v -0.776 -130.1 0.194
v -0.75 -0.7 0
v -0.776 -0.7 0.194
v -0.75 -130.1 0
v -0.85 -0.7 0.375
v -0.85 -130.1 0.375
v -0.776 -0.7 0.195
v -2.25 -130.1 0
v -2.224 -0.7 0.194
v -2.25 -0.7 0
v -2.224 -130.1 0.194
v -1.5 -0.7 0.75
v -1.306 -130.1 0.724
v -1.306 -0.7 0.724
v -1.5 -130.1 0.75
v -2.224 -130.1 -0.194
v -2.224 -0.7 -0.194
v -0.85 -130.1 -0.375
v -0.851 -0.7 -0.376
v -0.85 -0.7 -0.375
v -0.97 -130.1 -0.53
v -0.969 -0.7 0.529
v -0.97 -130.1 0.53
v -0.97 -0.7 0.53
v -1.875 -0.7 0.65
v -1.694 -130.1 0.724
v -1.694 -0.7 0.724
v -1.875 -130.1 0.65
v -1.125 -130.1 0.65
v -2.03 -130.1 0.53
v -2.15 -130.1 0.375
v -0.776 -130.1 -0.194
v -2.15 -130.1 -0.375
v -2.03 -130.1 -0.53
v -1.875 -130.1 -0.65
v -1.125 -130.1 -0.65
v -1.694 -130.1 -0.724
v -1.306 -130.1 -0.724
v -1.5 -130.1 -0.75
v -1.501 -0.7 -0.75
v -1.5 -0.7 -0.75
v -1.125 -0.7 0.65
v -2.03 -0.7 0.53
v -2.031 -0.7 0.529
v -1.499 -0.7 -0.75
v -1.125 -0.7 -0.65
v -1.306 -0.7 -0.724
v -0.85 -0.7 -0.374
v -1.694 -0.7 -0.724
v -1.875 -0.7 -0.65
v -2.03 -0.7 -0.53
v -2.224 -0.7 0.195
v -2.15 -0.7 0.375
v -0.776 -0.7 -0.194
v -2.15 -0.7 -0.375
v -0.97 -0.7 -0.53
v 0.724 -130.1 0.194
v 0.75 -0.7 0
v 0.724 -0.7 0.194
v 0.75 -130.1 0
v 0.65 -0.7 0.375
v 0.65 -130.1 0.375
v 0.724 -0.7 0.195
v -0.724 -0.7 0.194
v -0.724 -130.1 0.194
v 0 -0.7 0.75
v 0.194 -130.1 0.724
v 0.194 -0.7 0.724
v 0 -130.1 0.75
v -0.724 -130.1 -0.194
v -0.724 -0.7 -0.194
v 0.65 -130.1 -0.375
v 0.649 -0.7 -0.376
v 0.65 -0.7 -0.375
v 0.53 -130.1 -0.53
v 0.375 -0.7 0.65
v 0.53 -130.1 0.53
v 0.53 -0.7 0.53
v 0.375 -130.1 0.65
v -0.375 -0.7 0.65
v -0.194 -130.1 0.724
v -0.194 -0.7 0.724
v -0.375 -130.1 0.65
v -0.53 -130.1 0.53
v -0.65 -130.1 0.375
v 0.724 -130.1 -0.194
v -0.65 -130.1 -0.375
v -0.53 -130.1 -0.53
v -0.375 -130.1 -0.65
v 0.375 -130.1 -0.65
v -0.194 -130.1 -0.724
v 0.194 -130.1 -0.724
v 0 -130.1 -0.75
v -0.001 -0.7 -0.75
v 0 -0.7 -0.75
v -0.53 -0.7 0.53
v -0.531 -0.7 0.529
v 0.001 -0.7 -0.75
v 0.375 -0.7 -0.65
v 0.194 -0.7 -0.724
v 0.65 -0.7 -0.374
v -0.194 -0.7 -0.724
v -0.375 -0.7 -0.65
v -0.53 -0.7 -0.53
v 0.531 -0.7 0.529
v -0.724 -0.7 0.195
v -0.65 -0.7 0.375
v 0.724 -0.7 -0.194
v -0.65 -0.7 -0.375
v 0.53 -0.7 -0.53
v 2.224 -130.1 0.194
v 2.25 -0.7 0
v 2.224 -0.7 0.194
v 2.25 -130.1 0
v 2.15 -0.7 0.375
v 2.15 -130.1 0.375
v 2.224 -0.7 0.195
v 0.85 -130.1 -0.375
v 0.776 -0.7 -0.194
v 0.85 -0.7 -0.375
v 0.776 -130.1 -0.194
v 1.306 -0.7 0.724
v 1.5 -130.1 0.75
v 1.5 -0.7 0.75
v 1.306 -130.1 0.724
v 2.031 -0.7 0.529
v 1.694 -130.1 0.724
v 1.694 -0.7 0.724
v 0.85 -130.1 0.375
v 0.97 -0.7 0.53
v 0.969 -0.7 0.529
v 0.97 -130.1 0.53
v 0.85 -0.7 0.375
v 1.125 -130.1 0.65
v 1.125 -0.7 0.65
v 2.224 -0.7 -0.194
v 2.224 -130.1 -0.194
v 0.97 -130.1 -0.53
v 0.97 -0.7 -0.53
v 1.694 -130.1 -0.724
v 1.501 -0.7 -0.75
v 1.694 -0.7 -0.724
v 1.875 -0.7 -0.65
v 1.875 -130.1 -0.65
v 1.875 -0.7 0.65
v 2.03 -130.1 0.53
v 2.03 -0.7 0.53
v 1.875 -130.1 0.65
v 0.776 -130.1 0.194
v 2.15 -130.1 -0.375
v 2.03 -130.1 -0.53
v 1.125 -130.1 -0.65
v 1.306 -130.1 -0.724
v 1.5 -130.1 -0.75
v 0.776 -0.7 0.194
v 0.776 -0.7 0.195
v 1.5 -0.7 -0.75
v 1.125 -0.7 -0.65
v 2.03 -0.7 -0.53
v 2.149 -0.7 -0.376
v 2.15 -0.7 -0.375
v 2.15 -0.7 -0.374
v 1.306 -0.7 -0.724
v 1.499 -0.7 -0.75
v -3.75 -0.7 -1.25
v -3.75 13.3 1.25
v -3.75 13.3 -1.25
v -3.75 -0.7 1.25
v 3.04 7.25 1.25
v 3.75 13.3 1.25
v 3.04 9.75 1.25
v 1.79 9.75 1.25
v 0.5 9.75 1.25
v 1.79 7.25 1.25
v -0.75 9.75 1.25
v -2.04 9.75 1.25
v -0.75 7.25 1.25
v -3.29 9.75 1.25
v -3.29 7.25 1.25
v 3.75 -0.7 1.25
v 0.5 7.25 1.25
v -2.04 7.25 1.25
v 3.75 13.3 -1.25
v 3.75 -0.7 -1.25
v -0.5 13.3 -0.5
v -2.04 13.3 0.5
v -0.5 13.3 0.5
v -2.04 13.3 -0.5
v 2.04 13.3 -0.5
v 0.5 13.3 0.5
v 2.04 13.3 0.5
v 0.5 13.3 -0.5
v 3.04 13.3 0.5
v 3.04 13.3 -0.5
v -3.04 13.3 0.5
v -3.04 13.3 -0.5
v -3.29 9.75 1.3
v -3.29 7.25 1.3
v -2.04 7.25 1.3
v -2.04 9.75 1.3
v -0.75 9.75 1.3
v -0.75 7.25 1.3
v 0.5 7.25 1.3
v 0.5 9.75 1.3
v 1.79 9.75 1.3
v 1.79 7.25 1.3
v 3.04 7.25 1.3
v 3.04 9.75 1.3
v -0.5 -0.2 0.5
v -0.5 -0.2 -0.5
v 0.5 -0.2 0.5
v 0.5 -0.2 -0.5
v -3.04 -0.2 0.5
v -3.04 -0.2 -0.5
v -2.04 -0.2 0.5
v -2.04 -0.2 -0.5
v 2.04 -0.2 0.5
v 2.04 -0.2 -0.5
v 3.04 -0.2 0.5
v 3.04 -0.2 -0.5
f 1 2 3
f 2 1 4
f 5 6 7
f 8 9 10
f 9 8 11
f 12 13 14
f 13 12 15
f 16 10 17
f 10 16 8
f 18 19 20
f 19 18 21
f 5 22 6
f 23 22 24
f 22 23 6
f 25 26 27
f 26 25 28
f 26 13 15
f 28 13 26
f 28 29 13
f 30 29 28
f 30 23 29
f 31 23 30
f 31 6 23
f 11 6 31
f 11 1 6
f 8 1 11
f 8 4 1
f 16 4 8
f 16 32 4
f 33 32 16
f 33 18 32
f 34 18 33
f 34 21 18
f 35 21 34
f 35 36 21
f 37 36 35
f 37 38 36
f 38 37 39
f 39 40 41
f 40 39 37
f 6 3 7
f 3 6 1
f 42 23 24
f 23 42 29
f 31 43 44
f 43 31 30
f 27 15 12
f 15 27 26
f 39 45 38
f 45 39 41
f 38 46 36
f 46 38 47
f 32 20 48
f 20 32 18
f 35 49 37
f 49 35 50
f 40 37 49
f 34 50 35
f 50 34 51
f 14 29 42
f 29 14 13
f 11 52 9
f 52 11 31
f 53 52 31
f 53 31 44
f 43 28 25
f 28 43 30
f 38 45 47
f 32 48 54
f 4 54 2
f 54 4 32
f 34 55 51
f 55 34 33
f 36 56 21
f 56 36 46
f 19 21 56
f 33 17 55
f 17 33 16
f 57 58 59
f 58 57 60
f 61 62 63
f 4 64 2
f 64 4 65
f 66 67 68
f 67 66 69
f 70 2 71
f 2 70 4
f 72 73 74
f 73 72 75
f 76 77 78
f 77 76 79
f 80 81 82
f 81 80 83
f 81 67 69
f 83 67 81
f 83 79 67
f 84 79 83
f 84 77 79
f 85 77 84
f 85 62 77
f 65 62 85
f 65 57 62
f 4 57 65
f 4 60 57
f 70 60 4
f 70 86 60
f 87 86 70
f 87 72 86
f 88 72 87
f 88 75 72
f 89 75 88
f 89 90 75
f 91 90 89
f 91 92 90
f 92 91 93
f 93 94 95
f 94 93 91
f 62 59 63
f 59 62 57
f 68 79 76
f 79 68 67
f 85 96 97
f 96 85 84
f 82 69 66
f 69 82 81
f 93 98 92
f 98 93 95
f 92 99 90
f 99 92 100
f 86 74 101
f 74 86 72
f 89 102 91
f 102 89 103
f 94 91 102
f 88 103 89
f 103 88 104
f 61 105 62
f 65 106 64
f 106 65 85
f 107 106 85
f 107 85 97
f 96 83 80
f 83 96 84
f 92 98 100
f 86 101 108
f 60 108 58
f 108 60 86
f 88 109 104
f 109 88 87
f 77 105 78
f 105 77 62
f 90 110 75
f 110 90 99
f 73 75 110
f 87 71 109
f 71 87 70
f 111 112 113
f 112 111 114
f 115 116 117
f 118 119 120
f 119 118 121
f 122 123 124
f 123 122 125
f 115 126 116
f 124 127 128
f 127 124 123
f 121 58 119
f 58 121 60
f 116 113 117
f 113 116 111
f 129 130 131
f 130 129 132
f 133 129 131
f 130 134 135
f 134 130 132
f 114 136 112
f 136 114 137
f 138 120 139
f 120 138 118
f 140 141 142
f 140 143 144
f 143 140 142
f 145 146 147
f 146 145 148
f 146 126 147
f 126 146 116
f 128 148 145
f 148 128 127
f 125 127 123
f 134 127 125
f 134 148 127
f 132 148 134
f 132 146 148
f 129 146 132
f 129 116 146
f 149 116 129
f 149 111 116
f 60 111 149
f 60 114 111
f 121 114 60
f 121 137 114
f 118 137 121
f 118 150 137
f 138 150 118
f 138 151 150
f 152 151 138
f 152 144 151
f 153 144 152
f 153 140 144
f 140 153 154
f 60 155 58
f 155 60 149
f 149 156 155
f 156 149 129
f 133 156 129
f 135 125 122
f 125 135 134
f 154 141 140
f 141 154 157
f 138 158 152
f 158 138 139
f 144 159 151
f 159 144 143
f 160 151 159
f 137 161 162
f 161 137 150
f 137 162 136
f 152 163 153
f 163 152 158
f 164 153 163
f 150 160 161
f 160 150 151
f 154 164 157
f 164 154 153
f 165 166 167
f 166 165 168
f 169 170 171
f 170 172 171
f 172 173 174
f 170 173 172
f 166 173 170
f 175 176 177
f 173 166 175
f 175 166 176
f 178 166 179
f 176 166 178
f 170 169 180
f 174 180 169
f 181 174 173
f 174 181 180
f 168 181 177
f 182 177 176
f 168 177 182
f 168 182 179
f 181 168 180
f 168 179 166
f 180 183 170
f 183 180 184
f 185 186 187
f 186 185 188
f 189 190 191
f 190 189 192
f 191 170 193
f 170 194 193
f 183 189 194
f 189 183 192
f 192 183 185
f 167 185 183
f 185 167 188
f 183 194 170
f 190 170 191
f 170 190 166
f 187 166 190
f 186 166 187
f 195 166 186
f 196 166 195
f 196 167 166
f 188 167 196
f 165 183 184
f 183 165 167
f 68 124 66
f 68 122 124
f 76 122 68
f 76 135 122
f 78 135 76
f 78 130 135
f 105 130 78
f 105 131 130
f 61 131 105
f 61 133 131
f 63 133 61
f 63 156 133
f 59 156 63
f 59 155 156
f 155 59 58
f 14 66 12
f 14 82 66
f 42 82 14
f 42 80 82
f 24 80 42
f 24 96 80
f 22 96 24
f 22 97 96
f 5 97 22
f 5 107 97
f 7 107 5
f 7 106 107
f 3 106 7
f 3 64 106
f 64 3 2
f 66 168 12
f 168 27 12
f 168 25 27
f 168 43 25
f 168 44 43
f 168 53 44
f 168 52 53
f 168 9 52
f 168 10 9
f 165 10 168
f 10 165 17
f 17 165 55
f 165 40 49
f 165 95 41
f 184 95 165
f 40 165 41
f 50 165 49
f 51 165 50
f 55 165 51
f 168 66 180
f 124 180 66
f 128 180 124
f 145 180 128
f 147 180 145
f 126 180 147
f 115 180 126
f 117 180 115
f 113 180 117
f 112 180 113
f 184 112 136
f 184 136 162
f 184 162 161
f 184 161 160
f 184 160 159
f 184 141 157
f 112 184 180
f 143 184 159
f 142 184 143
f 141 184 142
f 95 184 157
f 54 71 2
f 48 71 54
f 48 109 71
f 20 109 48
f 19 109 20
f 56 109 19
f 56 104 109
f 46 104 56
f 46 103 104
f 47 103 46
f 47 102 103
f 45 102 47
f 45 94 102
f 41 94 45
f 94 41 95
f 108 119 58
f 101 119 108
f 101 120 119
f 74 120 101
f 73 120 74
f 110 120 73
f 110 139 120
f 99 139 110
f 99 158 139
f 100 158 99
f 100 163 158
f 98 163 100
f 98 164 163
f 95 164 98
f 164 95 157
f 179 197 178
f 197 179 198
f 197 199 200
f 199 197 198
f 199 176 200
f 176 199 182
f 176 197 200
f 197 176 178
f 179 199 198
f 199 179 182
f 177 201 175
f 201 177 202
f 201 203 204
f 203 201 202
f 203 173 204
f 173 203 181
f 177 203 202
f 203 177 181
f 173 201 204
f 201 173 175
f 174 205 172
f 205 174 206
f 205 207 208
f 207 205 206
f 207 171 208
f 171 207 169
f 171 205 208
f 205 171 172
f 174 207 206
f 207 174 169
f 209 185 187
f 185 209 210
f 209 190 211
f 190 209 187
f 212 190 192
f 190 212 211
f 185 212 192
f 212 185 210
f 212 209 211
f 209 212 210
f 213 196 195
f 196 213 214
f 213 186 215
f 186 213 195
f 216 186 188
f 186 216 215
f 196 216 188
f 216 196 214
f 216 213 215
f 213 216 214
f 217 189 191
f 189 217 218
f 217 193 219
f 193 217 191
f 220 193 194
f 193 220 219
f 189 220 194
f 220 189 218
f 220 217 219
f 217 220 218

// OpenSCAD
// file: servo_12g.scad
//servo_12g();

//use<hub_mount.scad>
//use<MCAD/nuts_and_bolts.scad>
$fn = 24;
//x,y,z => l,w,h

tap_r = 0.85;
hole_r = 1.0;

servo_l         = 12;  // was 12
servo_w         = 24;  // was 23
body_h          = 20.80;

servo_h         = 27; //not used in code was 27

wing_w          = 4.5;
wing_h          = 2.33;
wing_place      = 16.3;   
hole_offset     = 2.2;    //not checked
mount_hole_r    = 2/2;
mount_slot      = 1;

servo_ww        = servo_w+wing_w*2; // not used in code but is handy number

hub_h           = 4;
small_hub_r     = 6.15/2;  
horn_r          = 4.66/2;
horn_h          = 3;

wire_l          = 4;
wire_w          = 1.5;
wire_h          = 1;
wire_place      = 4.8;

servo_full_w    = servo_w+wing_w*2;
module servo_12g() {
  
    translate([-servo_l/2, -servo_w/2, -body_h/2-hub_h/2-horn_h/2]) {
    
        color("white") 
        translate([servo_l/2,servo_l/2,body_h+hub_h])
        cylinder(r=horn_r,h=horn_h);
        
        color("deepSkyBlue",.7) //deepSkyBlue
        union() {
            cube([servo_l,servo_w,body_h]);
            translate([servo_l/2,servo_l/2,body_h])
            cylinder(r=servo_l/2,h=hub_h);
            translate([servo_l/2,servo_l/2+6.30,body_h])
            cylinder(r=small_hub_r,h=hub_h);
            
        }
    }
}

module roundedRect(size, radius)
{
x = size[0];
y = size[1];
z = size[2];

translate([x/2+radius/2, y/2+radius/2, 0]){
linear_extrude(height=z)
hull()
{
// place 4 circles in the corners, with the given radius
translate([(-x/2)+(radius/2), (-y/2)+(radius/2), 0])
circle(r=radius);

translate([(x/2)-(radius/2), (-y/2)+(radius/2), 0])
circle(r=radius);

translate([(-x/2)+(radius/2), (y/2)-(radius/2), 0])
circle(r=radius);

translate([(x/2)-(radius/2), (y/2)-(radius/2), 0])
circle(r=radius);
}
}
}
// file: config.scad
//Parameters for servo_lx16a
$fn = 24;
//x,y,z => l,w,h


servo_l         = 45.20; 
servo_w         = 24.70; 
body_h          = 32;

servo_h         = 35;

hub_offset      = 10.10;

rad = 2;


w_between_holes = 20.5;
l_between_top_holes = 20.7;
l_between_bottom_holes = 24.45;
top_hole_l_offset = 6.1;
bottom_hole_l_offset = 2.35;

hole_dia = 1.6;
attach_screw_l = 5;

top_hub_carve_h = 2.6;
bottom_hub_carve_h = 3.4;

top_attach_carve_h = 1.1;
bottom_attach_carve_h = 1.9;

hub_carve_r = 10.8;

hub_r = 10.1;

w_between_ridges = 19.5;

top_horn_h = 3.20;
bottom_horn_h = 3.85;

top_horn_r = 3.15;
bottom_horn_r = 3;



hub_h           = 4;
small_hub_r     = 6.15/2;  
horn_r          = 4.66/2;
horn_h          = 3;

wire_l          = 4;
wire_w          = 1.5;
wire_h          = 1;
wire_place      = 4.8;
// main file
include <config.scad>
use <servo_12g.scad>


//servo_12g();
servo_wire();

wire_l = 130+0.1;
wire_d = 1.5;

module servo_wire(){
    
    difference(){
        
        union(){
            
            color("brown")
            translate([-1.5,0,0])
            rotate([90,0,0])
            cylinder(d=wire_d, h=wire_l);
            
            color("red")
            translate([0,0,0])
            rotate([90,0,0])
            cylinder(d=wire_d, h=wire_l);
            
            color("yellow")
            translate([1.5,0,0])
            rotate([90,0,0])
            cylinder(d=wire_d, h=wire_l);
            
            color("black")
            translate([-7.5/2,-14/20,-2.5/2])
            //rotate([90,0,0])
            cube([7.5, 14, 2.5]);
            
            color("silver")
            translate([-1.5/2-2.54,7.25,-0.2])
            //rotate([90,0,0])
            cube([1.25, 2.5, 1.5]);
            
            color("silver")
            translate([-1.5/2,7.25,-0.2])
            //rotate([90,0,0])
            cube([1.25, 2.5, 1.5]);
 
            color("silver") 
            translate([-1.5/2+2.54,7.25,-0.2])
            //rotate([90,0,0])
            cube([1.25, 2.5, 1.5]);
            
        }
        
        translate([-1/2,-0.2,-1/2])
        //rotate([90,0,0])
        #cube([1, 14, 1]);
        
        translate([-1/2-2.54,-0.2,-1/2])
        //rotate([90,0,0])
        cube([1, 14, 1]);
        
        translate([-1/2+2.54,-0.2,-1/2])
        //rotate([90,0,0])
        cube([1, 14, 1]);
        
        //translate([-1.5/2-2.54,7.25,0.45])
        ////rotate([90,0,0])
        //cube([1.25, 2.5, 1]);
        
        //translate([-1.5/2,7.25,0.45])
        ////rotate([90,0,0])
        //cube([1.25, 2.5, 1]);
        
        //translate([-1.5/2+2.54,7.25,0.45])
        ////rotate([90,0,0])
        //cube([1.25, 2.5, 1]);
        
    }
    
    
}
